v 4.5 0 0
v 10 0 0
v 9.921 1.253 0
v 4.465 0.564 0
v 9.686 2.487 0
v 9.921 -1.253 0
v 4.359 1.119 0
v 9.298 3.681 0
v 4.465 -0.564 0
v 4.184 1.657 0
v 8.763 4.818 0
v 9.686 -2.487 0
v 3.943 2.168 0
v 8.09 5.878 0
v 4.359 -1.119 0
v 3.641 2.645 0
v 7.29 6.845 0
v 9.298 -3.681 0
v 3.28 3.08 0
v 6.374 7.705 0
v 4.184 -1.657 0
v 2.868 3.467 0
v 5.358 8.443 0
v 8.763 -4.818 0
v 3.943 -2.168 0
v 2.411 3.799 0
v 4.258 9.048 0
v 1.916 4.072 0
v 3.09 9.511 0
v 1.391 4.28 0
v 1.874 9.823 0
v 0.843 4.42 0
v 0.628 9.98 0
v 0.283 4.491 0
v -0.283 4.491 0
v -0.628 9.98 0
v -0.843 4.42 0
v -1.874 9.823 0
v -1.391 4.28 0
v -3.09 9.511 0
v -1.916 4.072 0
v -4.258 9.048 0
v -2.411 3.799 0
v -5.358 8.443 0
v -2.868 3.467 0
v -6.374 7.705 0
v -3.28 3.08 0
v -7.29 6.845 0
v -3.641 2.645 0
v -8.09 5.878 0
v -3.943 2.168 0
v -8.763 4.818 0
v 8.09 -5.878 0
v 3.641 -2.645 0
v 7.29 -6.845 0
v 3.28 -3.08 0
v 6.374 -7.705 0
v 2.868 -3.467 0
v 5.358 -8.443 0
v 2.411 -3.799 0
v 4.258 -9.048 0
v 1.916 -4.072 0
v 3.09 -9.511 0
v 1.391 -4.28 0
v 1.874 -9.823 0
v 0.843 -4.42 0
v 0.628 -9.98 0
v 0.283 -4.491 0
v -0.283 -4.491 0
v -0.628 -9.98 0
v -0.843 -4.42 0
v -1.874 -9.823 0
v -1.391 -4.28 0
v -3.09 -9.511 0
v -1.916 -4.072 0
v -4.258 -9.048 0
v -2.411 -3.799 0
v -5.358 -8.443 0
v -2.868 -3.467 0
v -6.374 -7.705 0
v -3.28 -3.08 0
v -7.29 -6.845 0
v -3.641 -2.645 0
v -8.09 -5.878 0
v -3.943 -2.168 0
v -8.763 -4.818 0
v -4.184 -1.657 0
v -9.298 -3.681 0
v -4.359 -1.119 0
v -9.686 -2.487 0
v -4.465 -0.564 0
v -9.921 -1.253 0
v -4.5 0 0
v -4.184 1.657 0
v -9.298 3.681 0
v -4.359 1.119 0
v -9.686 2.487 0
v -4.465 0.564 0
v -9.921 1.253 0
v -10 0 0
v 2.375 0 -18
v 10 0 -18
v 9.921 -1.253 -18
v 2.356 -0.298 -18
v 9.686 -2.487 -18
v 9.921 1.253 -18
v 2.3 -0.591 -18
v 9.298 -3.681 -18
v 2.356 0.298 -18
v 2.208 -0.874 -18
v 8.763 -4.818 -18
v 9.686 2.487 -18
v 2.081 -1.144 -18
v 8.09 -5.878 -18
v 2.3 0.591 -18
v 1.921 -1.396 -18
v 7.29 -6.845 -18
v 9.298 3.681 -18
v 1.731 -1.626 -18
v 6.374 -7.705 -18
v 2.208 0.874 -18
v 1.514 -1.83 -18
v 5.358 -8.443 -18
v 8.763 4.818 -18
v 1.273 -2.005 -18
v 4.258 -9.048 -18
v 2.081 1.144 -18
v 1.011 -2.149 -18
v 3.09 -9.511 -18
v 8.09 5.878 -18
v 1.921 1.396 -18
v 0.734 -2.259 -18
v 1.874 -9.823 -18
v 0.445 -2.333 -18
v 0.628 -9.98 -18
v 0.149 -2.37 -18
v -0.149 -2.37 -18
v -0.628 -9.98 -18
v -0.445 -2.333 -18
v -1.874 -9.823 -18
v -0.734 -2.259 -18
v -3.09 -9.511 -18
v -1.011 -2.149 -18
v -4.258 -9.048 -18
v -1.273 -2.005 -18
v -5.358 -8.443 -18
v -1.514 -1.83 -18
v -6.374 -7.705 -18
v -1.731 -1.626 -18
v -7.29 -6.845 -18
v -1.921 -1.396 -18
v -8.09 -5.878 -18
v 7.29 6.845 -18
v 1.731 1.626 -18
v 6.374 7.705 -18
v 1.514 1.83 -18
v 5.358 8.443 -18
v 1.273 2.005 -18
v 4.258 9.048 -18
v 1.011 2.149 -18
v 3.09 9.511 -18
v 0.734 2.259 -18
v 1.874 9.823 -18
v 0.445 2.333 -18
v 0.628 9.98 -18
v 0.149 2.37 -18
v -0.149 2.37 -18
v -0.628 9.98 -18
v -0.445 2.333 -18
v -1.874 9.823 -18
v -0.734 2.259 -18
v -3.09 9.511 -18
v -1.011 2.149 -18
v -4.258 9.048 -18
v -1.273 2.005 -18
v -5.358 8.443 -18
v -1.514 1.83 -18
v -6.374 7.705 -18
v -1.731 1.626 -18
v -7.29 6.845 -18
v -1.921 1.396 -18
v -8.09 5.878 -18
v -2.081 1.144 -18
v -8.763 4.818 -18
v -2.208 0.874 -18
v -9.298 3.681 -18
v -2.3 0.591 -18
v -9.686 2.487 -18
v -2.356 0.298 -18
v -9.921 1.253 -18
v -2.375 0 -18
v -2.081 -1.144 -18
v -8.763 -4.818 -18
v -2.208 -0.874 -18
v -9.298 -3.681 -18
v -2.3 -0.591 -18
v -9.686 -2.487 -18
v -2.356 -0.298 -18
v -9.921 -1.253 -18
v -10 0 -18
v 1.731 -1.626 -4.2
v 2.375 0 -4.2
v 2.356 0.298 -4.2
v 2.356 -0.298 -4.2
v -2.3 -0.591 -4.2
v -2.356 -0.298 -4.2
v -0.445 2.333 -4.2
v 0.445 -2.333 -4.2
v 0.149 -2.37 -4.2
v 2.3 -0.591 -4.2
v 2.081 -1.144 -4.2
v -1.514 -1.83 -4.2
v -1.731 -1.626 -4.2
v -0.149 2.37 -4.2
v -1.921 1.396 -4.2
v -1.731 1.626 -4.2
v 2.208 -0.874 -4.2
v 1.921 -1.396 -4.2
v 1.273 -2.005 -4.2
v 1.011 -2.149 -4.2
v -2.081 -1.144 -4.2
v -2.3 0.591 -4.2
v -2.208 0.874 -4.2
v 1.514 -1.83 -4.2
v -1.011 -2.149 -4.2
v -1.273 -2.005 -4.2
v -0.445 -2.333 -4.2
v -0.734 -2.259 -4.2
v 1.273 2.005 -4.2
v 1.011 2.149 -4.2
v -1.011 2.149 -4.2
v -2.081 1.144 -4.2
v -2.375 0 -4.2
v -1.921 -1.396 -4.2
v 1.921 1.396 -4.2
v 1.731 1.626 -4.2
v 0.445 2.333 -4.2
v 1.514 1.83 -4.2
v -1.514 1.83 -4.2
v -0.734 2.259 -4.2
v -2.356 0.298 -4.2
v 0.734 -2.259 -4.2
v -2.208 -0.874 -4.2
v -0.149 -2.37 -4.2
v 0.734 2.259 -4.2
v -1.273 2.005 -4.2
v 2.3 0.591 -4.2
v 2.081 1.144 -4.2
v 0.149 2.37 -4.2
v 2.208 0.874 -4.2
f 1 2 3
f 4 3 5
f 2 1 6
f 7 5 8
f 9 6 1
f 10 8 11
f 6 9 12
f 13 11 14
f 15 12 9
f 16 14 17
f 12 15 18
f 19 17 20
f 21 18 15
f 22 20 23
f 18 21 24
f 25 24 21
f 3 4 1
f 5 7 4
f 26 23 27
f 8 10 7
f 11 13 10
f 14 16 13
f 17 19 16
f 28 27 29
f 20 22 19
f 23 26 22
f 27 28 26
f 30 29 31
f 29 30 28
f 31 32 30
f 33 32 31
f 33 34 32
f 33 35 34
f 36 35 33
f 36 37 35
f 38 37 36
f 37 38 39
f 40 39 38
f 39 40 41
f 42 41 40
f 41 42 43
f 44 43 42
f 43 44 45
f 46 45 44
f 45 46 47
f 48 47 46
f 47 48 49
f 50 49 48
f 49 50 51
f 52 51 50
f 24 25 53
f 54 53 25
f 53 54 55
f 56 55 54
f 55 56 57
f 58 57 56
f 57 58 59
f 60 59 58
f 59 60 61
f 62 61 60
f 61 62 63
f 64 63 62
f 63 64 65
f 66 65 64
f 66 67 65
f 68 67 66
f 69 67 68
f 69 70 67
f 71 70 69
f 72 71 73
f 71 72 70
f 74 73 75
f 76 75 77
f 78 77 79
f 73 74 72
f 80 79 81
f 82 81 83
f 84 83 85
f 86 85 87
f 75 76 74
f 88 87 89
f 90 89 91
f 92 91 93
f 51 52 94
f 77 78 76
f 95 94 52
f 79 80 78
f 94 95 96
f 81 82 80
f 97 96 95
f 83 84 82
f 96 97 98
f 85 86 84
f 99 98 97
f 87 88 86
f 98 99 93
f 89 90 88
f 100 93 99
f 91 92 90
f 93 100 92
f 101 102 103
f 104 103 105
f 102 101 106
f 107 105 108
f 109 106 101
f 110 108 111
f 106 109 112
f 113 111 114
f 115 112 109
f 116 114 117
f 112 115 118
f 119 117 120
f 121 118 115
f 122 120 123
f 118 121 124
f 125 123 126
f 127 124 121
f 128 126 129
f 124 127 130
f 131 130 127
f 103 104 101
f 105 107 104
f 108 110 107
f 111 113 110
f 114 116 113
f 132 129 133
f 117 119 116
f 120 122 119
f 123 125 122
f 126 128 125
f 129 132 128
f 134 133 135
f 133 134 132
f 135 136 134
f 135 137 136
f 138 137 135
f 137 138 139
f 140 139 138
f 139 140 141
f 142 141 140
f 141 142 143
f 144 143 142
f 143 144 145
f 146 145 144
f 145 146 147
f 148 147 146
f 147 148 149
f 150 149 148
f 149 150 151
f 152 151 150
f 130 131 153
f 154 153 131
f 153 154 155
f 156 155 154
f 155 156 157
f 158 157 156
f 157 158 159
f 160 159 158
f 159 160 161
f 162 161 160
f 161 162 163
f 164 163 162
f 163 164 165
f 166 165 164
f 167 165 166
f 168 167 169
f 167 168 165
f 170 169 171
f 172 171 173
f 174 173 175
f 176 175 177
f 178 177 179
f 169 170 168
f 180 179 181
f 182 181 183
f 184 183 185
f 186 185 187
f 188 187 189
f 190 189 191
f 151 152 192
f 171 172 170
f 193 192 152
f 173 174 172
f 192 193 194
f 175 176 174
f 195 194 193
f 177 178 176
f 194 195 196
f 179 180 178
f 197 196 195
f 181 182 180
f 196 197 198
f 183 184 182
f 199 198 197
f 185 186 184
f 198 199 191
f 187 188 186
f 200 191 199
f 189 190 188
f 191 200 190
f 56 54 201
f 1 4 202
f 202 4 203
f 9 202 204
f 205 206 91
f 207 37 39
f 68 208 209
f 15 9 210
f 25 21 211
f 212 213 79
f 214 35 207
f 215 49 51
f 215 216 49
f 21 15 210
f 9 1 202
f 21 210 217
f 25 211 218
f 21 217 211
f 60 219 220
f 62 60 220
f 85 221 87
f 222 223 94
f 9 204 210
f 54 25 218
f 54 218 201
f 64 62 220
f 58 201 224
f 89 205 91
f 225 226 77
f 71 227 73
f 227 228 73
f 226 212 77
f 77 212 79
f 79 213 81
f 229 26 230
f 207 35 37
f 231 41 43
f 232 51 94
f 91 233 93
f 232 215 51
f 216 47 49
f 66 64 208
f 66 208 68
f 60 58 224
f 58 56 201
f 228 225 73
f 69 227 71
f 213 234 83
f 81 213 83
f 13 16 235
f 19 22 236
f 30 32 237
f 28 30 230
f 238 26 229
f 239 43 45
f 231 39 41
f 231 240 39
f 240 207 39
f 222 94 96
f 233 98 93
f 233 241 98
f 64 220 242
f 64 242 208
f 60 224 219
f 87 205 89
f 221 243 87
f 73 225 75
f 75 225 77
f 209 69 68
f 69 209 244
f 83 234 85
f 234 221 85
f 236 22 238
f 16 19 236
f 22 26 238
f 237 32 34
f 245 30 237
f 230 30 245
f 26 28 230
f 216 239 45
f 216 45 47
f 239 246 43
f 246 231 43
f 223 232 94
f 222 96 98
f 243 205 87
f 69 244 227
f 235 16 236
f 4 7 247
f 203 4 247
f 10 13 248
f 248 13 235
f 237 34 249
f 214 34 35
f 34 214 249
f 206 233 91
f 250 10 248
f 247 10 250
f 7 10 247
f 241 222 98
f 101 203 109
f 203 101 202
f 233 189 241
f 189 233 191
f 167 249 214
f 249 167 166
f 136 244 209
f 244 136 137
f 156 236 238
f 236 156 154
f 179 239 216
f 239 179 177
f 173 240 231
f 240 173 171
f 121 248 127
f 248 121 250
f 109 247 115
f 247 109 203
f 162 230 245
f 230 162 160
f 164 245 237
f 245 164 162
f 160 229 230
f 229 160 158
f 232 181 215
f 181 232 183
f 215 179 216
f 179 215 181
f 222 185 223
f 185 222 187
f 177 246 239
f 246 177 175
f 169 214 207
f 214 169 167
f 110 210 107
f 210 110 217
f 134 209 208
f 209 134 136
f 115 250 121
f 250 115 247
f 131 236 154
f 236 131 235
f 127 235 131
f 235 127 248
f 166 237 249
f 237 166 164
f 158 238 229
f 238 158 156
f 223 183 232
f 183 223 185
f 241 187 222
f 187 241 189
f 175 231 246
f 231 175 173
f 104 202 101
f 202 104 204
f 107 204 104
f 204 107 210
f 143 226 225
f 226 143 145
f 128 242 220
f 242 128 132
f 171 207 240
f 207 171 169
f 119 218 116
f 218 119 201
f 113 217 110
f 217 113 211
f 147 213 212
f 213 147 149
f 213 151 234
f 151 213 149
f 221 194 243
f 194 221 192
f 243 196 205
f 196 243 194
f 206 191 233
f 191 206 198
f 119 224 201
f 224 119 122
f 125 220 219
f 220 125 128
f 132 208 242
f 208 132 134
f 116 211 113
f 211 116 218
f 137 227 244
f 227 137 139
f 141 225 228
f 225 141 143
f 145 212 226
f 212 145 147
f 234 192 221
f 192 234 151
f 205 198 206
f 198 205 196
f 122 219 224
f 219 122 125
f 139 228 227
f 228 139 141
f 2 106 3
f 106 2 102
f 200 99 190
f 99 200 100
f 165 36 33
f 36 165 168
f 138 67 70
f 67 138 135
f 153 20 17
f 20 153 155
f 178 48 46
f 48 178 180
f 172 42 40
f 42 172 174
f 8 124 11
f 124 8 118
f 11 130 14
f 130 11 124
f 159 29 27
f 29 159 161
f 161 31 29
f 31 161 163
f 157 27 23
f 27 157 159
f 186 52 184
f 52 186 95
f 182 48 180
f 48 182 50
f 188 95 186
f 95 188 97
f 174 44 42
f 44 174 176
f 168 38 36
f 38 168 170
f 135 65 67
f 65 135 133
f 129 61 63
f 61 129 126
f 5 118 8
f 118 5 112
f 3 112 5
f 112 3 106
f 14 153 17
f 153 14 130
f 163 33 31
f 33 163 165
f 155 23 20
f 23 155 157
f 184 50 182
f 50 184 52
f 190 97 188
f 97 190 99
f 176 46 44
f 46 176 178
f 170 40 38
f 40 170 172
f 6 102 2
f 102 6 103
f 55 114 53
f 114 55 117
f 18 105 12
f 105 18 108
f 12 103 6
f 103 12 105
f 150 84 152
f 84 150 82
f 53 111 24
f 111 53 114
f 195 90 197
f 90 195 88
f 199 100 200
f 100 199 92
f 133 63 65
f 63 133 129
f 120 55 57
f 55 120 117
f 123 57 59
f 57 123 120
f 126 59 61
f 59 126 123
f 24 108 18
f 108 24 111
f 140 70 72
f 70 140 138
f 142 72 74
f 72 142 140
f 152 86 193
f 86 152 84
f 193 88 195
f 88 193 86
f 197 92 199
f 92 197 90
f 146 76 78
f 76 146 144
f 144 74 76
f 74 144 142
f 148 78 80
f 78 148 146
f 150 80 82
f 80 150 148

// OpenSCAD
$fn = 50;


difference() {
	union() {
		translate(v = [0, 0, -18.0000000000]) {
			cylinder(h = 18, r = 10.0000000000);
		}
	}
	union() {
		translate(v = [0, 0, 0]) {
			rotate(a = [0, 0, 0]) {
				difference() {
					union() {
						#translate(v = [0, 0, -18.0000000000]) {
							cylinder(h = 18, r = 2.2500000000);
						}
						#translate(v = [0, 0, -4.2000000000]) {
							cylinder(h = 4.2000000000, r = 10.0000000000, r1 = 2.3750000000, r2 = 4.5000000000);
						}
						#translate(v = [0, 0, -18.0000000000]) {
							cylinder(h = 18, r = 2.3750000000);
						}
						#translate(v = [0, 0, -18.0000000000]) {
							cylinder(h = 18, r = 2.2500000000);
						}
					}
					union();
				}
			}
		}
	}
}
